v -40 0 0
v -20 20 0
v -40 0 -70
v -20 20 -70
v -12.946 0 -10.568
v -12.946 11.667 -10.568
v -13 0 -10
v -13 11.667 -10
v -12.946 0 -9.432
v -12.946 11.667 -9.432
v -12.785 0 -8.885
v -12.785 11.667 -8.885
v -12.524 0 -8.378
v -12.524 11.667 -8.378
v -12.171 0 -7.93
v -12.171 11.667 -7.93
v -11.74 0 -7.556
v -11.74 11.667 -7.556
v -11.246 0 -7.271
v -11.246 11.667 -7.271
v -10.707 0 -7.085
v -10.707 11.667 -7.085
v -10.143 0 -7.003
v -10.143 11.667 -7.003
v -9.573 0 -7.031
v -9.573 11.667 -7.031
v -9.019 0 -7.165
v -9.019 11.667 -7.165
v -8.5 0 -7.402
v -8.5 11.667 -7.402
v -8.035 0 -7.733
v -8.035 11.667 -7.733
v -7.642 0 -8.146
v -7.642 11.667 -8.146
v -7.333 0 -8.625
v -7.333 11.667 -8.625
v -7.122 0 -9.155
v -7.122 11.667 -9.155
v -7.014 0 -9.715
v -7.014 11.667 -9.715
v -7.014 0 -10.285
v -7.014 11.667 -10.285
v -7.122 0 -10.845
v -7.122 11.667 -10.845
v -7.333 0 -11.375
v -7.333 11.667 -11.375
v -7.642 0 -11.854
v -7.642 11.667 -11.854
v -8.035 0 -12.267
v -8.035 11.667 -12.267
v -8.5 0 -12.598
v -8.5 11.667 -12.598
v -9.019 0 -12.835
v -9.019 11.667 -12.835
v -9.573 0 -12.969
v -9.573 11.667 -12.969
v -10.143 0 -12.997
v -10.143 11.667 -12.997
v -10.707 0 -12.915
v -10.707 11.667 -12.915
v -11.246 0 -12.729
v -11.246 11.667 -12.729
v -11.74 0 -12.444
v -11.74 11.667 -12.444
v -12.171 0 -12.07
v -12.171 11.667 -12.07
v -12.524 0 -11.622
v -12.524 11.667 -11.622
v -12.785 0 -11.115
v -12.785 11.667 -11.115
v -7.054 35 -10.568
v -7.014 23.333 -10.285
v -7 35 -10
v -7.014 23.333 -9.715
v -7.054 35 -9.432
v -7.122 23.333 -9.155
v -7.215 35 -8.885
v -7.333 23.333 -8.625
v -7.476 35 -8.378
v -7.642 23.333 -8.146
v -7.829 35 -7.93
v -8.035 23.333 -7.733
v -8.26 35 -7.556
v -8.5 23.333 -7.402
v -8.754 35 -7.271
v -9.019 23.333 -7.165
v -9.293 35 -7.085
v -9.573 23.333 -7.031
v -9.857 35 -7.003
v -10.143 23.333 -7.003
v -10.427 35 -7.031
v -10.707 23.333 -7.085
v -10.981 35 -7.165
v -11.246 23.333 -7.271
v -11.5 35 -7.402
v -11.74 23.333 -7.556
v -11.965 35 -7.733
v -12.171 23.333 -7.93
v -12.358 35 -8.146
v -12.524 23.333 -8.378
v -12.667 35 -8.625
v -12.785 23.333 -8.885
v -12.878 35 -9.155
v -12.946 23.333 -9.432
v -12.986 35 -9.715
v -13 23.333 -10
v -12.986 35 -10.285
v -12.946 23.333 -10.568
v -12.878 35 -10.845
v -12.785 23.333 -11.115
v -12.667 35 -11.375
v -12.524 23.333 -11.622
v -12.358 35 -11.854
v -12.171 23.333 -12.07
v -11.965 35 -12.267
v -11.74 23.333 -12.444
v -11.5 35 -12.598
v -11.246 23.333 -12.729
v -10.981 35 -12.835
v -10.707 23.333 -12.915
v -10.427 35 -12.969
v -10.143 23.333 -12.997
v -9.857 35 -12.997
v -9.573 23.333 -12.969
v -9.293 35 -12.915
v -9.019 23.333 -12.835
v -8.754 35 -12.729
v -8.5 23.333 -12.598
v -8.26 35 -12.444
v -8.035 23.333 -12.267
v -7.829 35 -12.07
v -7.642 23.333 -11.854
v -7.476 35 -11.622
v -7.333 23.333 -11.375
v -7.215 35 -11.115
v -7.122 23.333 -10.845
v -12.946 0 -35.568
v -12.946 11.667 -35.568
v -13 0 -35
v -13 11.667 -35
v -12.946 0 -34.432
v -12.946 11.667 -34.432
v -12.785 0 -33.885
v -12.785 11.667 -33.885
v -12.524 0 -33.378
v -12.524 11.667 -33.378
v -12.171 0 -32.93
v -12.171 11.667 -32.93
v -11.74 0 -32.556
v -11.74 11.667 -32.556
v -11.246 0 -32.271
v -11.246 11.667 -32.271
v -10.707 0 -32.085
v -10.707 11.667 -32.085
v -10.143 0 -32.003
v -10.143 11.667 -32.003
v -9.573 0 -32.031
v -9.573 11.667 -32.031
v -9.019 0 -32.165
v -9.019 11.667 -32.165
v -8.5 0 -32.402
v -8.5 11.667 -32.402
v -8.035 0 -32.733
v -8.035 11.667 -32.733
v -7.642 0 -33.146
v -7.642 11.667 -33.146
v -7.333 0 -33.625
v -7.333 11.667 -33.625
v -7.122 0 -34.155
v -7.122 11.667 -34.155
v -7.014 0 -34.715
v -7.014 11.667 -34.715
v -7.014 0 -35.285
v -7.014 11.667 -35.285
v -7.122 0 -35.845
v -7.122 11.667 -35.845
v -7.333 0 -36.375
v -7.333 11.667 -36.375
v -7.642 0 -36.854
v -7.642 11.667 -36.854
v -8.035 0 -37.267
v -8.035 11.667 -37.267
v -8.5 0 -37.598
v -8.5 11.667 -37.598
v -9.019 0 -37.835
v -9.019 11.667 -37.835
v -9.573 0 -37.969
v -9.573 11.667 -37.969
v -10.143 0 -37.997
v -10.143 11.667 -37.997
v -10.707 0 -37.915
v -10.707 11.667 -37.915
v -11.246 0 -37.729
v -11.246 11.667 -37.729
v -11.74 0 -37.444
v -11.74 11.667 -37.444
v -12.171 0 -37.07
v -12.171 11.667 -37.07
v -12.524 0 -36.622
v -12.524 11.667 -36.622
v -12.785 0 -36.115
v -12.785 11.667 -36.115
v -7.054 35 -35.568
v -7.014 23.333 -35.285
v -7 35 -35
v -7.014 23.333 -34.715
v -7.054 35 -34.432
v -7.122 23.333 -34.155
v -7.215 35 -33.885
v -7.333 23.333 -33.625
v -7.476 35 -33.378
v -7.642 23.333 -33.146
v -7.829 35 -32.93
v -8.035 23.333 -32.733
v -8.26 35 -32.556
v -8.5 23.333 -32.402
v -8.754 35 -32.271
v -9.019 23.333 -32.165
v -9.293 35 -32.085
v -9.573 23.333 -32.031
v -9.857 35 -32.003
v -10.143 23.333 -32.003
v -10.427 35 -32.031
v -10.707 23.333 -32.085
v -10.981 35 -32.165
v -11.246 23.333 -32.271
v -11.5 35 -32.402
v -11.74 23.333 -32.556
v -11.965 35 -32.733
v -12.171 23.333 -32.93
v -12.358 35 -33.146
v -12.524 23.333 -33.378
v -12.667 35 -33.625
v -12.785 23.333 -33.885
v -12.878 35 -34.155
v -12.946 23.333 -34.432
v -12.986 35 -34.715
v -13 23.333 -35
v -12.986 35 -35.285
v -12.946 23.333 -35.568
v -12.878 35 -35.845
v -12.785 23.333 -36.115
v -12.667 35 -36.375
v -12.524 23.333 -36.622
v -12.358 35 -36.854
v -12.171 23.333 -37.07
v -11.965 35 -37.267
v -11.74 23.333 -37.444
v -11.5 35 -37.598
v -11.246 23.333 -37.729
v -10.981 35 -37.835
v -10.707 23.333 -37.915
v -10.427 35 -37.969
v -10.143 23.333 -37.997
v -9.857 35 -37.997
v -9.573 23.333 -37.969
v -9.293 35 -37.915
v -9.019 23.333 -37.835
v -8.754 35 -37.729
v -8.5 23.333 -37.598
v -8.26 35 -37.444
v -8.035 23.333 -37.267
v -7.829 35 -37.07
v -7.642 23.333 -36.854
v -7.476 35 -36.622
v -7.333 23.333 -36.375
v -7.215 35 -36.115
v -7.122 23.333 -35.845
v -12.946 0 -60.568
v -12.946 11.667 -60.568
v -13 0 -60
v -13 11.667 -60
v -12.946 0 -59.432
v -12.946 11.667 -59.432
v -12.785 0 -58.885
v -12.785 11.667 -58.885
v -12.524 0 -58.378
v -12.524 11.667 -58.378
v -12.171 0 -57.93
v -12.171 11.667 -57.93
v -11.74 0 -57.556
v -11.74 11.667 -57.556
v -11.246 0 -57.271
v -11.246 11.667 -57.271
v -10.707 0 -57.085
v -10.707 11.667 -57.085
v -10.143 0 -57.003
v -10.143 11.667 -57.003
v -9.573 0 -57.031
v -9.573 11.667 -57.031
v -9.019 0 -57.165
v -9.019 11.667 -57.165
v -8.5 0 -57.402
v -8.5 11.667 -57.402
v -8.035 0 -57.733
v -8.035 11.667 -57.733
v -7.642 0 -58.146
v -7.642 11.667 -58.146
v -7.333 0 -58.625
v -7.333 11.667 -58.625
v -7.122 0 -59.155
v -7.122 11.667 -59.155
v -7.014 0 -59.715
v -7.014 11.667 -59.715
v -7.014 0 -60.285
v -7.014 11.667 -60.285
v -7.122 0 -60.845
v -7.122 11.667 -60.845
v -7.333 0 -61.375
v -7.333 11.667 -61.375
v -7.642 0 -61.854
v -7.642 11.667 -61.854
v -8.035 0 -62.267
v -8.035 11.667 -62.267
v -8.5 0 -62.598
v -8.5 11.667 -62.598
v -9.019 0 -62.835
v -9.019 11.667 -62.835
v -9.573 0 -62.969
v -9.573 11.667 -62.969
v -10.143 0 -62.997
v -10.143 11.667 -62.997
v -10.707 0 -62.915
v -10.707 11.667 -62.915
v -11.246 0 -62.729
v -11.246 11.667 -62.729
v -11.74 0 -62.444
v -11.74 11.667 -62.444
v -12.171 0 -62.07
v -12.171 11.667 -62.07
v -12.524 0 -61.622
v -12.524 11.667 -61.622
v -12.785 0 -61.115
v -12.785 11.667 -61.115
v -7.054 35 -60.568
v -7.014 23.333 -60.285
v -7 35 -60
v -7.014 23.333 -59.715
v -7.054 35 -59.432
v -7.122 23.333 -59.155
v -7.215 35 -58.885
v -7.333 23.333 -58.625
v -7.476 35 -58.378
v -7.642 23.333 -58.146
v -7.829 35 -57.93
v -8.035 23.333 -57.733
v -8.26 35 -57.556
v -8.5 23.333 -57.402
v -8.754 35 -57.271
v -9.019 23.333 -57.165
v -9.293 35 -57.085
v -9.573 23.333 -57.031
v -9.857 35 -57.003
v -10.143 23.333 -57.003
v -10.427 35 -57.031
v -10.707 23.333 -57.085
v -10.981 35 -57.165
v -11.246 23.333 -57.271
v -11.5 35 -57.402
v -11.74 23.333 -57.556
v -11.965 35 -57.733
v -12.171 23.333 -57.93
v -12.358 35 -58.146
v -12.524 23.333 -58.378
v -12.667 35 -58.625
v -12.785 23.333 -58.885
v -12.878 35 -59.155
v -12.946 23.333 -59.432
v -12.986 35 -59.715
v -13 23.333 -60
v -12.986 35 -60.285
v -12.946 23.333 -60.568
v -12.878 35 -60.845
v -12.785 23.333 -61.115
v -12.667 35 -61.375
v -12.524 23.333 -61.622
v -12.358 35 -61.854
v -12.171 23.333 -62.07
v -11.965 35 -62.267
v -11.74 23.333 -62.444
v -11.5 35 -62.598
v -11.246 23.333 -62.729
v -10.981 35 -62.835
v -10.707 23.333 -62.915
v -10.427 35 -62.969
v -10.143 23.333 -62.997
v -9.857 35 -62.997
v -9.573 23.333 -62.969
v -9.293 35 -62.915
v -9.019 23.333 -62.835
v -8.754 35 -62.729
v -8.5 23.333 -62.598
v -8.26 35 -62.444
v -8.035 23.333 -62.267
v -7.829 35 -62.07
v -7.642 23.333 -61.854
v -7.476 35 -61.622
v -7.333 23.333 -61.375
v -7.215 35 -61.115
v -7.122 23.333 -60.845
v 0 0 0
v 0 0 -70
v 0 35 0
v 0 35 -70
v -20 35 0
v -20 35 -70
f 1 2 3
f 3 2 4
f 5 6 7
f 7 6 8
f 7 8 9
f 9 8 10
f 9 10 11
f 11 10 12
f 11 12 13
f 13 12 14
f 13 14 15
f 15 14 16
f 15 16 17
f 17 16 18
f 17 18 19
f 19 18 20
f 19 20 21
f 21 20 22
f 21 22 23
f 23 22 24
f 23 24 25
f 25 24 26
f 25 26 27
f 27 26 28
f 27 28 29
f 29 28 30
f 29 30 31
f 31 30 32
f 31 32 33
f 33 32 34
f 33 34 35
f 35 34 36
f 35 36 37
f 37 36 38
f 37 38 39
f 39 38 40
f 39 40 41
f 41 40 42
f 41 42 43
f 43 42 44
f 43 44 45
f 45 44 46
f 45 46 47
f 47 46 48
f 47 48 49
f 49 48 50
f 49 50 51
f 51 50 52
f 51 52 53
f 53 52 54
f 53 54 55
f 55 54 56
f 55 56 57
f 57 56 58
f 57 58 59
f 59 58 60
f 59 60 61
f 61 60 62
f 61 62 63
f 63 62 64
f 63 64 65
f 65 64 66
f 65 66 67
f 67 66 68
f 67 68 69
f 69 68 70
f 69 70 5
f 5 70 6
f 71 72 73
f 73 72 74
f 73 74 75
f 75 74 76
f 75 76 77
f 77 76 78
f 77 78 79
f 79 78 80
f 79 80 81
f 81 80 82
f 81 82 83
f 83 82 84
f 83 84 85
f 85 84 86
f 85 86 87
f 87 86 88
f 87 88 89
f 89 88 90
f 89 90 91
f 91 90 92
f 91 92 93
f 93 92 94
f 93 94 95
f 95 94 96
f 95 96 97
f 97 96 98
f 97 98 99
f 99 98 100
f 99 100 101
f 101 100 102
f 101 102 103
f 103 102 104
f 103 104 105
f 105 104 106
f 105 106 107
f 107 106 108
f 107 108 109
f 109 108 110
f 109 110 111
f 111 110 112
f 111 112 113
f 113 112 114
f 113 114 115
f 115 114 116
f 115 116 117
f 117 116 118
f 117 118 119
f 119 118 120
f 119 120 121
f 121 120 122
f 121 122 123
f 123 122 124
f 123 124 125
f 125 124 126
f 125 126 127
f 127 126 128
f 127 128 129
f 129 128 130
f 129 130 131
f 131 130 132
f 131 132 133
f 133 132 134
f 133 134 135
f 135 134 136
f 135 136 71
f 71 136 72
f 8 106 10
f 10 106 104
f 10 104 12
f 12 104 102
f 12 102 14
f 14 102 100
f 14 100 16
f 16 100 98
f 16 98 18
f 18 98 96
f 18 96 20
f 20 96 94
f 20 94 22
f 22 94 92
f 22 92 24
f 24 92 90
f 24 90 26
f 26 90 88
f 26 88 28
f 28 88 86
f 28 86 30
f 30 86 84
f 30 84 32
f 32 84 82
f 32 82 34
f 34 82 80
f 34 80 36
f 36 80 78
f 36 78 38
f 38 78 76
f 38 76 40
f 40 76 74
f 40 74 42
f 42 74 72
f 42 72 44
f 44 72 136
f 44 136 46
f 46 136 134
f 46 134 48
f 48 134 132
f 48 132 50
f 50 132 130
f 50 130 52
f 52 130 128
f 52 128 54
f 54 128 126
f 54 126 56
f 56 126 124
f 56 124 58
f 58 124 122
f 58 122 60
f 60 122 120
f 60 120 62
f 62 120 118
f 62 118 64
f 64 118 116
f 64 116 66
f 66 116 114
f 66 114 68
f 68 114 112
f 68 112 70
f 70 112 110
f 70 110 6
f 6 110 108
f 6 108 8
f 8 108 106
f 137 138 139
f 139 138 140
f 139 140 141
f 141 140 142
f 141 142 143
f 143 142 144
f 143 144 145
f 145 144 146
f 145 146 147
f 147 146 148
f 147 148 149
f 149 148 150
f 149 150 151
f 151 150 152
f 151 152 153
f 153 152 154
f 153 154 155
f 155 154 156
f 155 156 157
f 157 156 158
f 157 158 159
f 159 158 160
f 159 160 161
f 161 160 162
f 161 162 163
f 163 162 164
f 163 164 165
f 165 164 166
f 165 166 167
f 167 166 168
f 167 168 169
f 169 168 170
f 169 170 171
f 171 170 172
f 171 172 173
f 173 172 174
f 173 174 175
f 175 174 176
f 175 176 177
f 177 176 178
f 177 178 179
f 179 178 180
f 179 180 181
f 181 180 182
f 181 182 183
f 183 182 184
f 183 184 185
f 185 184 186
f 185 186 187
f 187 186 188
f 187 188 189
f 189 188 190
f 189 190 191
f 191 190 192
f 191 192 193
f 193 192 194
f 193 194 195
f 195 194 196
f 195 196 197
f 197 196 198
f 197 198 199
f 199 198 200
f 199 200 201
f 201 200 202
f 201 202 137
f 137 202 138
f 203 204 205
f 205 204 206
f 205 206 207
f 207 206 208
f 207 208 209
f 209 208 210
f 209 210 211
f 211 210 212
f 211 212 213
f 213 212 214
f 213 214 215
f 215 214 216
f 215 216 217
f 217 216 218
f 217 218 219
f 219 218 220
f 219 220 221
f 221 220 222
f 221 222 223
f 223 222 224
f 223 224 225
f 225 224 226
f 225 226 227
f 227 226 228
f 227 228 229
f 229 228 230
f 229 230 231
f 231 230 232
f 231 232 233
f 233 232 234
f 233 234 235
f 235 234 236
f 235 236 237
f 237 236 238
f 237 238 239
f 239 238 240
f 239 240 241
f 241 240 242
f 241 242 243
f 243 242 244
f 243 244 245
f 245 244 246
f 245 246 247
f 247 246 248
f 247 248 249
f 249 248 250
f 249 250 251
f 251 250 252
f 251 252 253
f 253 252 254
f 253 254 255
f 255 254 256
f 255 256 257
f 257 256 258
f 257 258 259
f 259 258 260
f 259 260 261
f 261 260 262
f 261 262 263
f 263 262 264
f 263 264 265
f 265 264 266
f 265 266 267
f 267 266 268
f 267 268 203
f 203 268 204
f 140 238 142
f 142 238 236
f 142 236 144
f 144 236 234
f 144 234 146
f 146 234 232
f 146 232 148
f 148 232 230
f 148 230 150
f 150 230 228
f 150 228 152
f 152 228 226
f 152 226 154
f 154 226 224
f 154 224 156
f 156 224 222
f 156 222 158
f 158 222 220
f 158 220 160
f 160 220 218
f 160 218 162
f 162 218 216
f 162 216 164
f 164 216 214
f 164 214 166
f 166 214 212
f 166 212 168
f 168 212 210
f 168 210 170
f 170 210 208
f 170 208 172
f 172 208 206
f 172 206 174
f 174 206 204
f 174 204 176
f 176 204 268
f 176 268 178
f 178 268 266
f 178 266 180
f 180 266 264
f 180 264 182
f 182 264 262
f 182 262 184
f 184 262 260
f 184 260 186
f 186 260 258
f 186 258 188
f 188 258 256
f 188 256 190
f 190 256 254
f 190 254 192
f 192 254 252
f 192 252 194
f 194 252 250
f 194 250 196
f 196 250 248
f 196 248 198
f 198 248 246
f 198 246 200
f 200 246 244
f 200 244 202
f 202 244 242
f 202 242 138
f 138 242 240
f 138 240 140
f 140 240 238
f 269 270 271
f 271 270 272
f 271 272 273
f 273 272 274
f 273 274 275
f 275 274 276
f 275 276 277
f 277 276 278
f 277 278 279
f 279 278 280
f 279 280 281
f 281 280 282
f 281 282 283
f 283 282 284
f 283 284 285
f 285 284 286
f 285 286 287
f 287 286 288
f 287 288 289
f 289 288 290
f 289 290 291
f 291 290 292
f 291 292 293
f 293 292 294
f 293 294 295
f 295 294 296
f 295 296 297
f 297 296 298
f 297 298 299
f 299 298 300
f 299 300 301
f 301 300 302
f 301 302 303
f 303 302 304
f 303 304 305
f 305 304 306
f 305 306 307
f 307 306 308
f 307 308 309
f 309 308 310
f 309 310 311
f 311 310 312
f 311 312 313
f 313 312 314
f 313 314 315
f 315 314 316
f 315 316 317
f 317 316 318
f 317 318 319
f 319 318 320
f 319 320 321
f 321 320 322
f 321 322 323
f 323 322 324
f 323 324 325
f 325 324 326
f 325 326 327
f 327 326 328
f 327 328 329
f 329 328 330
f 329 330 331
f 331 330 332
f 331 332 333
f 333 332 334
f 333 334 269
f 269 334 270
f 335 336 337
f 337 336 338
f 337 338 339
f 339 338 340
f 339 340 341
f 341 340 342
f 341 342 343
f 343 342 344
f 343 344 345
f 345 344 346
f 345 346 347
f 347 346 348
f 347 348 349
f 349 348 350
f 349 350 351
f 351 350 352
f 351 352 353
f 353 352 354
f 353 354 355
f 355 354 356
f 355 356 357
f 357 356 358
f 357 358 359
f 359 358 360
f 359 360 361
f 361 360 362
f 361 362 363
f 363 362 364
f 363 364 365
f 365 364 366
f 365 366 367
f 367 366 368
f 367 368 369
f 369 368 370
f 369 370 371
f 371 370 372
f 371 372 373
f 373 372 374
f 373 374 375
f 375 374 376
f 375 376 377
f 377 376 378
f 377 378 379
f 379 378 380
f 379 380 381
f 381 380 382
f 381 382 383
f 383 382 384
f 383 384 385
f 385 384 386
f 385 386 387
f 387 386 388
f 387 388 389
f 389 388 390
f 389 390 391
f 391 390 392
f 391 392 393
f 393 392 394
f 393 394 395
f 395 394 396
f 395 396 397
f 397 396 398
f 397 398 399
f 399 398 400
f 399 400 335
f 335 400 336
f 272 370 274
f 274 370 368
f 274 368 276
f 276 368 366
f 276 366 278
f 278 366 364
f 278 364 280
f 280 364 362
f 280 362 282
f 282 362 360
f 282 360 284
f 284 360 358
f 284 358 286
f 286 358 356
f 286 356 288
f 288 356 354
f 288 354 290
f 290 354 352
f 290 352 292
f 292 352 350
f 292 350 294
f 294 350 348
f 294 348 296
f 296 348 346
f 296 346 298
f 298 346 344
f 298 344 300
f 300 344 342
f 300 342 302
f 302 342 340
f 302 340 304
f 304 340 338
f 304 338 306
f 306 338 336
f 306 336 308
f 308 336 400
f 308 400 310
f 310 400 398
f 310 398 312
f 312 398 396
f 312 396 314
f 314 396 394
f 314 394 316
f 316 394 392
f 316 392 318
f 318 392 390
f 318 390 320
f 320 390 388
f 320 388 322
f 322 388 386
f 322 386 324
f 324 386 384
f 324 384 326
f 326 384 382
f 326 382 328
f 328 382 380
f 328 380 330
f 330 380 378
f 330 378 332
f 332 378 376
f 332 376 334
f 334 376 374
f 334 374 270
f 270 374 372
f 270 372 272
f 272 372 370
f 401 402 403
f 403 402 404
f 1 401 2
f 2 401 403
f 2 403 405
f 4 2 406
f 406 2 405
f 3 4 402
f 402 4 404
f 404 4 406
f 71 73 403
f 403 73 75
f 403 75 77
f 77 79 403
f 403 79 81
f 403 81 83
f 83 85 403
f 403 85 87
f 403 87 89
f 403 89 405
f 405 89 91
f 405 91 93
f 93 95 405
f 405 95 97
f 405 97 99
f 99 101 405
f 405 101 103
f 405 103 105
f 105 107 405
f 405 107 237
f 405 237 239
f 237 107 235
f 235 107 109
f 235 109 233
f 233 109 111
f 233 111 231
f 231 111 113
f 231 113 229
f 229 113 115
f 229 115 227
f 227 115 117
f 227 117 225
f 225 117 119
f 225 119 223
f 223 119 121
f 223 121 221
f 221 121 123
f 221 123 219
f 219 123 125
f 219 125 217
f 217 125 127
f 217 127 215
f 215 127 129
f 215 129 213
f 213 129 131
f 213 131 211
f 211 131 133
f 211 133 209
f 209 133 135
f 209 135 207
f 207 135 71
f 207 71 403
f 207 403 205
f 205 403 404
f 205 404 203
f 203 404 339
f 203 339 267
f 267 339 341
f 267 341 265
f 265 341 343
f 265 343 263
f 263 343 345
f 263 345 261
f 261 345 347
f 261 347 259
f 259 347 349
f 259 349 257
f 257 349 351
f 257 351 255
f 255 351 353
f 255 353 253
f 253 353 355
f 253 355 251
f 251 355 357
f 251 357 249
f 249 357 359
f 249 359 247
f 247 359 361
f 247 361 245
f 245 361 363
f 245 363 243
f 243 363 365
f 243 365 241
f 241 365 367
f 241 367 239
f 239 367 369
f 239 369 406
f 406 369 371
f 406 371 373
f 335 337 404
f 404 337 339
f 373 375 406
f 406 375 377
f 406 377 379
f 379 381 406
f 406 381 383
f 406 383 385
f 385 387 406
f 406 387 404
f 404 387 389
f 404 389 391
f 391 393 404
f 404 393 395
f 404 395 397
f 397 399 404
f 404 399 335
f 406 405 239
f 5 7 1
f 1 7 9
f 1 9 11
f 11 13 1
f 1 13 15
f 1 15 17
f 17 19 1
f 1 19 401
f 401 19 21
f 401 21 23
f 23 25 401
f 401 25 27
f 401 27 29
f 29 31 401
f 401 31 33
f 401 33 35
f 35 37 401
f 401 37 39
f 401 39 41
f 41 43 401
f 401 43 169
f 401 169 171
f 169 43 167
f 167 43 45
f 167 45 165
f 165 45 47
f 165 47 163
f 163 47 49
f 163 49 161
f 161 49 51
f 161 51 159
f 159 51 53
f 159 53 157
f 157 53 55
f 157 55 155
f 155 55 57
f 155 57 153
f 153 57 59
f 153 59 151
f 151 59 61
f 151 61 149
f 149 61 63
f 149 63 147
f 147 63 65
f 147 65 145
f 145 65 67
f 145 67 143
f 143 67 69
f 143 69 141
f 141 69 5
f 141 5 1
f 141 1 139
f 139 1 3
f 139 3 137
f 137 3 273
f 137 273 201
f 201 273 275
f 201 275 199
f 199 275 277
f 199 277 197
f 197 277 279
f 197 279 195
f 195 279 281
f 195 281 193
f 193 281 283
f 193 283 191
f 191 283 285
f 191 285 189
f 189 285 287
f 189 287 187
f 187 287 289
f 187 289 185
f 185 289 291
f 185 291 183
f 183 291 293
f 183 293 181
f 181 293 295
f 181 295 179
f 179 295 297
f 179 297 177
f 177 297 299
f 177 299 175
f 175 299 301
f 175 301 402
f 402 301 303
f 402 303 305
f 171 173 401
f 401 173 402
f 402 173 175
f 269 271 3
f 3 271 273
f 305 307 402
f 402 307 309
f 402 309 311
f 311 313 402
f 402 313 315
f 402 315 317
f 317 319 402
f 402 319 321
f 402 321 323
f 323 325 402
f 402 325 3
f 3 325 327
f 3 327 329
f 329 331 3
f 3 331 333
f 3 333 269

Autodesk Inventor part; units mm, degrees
ref_plane "YZ Plane" through (0, 0, 0) normal (1, 0, 0) x (0, 1, 0)
ref_plane "XZ Plane" through (0, 0, 0) normal (0, 1, 0) x (-1, 0, 0)
ref_plane "XY Plane" through (0, 0, 0) normal (0, 0, 1) x (1, 0, 0)
sketch "Sketch1" plane through (0, 0, 0) normal (0, 1, 0) x (-1, 0, 0)
  line L0 (0, 0) -> (20, 0)
  line L1 (20, 0) -> (20, -70)
  line L2 (20, -70) -> (0, -70)
  line L3 (0, -70) -> (0, 0)
  dimension "d0" = 70
  dimension "d1" = 20
extrude "Extrusion1" add sketch "Sketch1" along normal blind 35
sketch "Sketch2" plane through (0, 35, 0) normal (0, 1, 0) x (1, 0, 0)
  line L0 (-20, 70) -> (-20, 0) projected
  line L1 (0, 70) -> (-20, 70) projected
  point P0 (0, 0)
  point P1 (-10, 60)
  point P2 (-20, 35)
  point P3 (-10, 70)
  point P4 (-10, 35)
  point P5 (-10, 10)
  dimension "d5" = 10
  dimension "d6" = 10
  dimension "d14" = 25
  dimension "d15" = 25
hole "Hole1" at (-10, 35, -60) at (-10, 35, -35) at (-10, 35, -10) direction (0, -1, 0) diameter 6 end through all
sketch "Sketch3" plane through (0, 0, -70) normal (0, 0, -1) x (-1, 0, 0)
  line L0 (0, 0) -> (20, 0) projected
  line L1 (20, 0) -> (20, 20)
  line L2 (20, 0) -> (20, 35) projected
  line L3 (20, 20) -> (40, 0)
  line L4 (40, 0) -> (20, 0)
  dimension "d16" = 20
  dimension "d17" = 45
extrude "Extrusion2" add sketch "Sketch3" against normal up to surface (70 mm away)
properties part number "Magazine_Mount_Plate_Spacer_3DPrint"
